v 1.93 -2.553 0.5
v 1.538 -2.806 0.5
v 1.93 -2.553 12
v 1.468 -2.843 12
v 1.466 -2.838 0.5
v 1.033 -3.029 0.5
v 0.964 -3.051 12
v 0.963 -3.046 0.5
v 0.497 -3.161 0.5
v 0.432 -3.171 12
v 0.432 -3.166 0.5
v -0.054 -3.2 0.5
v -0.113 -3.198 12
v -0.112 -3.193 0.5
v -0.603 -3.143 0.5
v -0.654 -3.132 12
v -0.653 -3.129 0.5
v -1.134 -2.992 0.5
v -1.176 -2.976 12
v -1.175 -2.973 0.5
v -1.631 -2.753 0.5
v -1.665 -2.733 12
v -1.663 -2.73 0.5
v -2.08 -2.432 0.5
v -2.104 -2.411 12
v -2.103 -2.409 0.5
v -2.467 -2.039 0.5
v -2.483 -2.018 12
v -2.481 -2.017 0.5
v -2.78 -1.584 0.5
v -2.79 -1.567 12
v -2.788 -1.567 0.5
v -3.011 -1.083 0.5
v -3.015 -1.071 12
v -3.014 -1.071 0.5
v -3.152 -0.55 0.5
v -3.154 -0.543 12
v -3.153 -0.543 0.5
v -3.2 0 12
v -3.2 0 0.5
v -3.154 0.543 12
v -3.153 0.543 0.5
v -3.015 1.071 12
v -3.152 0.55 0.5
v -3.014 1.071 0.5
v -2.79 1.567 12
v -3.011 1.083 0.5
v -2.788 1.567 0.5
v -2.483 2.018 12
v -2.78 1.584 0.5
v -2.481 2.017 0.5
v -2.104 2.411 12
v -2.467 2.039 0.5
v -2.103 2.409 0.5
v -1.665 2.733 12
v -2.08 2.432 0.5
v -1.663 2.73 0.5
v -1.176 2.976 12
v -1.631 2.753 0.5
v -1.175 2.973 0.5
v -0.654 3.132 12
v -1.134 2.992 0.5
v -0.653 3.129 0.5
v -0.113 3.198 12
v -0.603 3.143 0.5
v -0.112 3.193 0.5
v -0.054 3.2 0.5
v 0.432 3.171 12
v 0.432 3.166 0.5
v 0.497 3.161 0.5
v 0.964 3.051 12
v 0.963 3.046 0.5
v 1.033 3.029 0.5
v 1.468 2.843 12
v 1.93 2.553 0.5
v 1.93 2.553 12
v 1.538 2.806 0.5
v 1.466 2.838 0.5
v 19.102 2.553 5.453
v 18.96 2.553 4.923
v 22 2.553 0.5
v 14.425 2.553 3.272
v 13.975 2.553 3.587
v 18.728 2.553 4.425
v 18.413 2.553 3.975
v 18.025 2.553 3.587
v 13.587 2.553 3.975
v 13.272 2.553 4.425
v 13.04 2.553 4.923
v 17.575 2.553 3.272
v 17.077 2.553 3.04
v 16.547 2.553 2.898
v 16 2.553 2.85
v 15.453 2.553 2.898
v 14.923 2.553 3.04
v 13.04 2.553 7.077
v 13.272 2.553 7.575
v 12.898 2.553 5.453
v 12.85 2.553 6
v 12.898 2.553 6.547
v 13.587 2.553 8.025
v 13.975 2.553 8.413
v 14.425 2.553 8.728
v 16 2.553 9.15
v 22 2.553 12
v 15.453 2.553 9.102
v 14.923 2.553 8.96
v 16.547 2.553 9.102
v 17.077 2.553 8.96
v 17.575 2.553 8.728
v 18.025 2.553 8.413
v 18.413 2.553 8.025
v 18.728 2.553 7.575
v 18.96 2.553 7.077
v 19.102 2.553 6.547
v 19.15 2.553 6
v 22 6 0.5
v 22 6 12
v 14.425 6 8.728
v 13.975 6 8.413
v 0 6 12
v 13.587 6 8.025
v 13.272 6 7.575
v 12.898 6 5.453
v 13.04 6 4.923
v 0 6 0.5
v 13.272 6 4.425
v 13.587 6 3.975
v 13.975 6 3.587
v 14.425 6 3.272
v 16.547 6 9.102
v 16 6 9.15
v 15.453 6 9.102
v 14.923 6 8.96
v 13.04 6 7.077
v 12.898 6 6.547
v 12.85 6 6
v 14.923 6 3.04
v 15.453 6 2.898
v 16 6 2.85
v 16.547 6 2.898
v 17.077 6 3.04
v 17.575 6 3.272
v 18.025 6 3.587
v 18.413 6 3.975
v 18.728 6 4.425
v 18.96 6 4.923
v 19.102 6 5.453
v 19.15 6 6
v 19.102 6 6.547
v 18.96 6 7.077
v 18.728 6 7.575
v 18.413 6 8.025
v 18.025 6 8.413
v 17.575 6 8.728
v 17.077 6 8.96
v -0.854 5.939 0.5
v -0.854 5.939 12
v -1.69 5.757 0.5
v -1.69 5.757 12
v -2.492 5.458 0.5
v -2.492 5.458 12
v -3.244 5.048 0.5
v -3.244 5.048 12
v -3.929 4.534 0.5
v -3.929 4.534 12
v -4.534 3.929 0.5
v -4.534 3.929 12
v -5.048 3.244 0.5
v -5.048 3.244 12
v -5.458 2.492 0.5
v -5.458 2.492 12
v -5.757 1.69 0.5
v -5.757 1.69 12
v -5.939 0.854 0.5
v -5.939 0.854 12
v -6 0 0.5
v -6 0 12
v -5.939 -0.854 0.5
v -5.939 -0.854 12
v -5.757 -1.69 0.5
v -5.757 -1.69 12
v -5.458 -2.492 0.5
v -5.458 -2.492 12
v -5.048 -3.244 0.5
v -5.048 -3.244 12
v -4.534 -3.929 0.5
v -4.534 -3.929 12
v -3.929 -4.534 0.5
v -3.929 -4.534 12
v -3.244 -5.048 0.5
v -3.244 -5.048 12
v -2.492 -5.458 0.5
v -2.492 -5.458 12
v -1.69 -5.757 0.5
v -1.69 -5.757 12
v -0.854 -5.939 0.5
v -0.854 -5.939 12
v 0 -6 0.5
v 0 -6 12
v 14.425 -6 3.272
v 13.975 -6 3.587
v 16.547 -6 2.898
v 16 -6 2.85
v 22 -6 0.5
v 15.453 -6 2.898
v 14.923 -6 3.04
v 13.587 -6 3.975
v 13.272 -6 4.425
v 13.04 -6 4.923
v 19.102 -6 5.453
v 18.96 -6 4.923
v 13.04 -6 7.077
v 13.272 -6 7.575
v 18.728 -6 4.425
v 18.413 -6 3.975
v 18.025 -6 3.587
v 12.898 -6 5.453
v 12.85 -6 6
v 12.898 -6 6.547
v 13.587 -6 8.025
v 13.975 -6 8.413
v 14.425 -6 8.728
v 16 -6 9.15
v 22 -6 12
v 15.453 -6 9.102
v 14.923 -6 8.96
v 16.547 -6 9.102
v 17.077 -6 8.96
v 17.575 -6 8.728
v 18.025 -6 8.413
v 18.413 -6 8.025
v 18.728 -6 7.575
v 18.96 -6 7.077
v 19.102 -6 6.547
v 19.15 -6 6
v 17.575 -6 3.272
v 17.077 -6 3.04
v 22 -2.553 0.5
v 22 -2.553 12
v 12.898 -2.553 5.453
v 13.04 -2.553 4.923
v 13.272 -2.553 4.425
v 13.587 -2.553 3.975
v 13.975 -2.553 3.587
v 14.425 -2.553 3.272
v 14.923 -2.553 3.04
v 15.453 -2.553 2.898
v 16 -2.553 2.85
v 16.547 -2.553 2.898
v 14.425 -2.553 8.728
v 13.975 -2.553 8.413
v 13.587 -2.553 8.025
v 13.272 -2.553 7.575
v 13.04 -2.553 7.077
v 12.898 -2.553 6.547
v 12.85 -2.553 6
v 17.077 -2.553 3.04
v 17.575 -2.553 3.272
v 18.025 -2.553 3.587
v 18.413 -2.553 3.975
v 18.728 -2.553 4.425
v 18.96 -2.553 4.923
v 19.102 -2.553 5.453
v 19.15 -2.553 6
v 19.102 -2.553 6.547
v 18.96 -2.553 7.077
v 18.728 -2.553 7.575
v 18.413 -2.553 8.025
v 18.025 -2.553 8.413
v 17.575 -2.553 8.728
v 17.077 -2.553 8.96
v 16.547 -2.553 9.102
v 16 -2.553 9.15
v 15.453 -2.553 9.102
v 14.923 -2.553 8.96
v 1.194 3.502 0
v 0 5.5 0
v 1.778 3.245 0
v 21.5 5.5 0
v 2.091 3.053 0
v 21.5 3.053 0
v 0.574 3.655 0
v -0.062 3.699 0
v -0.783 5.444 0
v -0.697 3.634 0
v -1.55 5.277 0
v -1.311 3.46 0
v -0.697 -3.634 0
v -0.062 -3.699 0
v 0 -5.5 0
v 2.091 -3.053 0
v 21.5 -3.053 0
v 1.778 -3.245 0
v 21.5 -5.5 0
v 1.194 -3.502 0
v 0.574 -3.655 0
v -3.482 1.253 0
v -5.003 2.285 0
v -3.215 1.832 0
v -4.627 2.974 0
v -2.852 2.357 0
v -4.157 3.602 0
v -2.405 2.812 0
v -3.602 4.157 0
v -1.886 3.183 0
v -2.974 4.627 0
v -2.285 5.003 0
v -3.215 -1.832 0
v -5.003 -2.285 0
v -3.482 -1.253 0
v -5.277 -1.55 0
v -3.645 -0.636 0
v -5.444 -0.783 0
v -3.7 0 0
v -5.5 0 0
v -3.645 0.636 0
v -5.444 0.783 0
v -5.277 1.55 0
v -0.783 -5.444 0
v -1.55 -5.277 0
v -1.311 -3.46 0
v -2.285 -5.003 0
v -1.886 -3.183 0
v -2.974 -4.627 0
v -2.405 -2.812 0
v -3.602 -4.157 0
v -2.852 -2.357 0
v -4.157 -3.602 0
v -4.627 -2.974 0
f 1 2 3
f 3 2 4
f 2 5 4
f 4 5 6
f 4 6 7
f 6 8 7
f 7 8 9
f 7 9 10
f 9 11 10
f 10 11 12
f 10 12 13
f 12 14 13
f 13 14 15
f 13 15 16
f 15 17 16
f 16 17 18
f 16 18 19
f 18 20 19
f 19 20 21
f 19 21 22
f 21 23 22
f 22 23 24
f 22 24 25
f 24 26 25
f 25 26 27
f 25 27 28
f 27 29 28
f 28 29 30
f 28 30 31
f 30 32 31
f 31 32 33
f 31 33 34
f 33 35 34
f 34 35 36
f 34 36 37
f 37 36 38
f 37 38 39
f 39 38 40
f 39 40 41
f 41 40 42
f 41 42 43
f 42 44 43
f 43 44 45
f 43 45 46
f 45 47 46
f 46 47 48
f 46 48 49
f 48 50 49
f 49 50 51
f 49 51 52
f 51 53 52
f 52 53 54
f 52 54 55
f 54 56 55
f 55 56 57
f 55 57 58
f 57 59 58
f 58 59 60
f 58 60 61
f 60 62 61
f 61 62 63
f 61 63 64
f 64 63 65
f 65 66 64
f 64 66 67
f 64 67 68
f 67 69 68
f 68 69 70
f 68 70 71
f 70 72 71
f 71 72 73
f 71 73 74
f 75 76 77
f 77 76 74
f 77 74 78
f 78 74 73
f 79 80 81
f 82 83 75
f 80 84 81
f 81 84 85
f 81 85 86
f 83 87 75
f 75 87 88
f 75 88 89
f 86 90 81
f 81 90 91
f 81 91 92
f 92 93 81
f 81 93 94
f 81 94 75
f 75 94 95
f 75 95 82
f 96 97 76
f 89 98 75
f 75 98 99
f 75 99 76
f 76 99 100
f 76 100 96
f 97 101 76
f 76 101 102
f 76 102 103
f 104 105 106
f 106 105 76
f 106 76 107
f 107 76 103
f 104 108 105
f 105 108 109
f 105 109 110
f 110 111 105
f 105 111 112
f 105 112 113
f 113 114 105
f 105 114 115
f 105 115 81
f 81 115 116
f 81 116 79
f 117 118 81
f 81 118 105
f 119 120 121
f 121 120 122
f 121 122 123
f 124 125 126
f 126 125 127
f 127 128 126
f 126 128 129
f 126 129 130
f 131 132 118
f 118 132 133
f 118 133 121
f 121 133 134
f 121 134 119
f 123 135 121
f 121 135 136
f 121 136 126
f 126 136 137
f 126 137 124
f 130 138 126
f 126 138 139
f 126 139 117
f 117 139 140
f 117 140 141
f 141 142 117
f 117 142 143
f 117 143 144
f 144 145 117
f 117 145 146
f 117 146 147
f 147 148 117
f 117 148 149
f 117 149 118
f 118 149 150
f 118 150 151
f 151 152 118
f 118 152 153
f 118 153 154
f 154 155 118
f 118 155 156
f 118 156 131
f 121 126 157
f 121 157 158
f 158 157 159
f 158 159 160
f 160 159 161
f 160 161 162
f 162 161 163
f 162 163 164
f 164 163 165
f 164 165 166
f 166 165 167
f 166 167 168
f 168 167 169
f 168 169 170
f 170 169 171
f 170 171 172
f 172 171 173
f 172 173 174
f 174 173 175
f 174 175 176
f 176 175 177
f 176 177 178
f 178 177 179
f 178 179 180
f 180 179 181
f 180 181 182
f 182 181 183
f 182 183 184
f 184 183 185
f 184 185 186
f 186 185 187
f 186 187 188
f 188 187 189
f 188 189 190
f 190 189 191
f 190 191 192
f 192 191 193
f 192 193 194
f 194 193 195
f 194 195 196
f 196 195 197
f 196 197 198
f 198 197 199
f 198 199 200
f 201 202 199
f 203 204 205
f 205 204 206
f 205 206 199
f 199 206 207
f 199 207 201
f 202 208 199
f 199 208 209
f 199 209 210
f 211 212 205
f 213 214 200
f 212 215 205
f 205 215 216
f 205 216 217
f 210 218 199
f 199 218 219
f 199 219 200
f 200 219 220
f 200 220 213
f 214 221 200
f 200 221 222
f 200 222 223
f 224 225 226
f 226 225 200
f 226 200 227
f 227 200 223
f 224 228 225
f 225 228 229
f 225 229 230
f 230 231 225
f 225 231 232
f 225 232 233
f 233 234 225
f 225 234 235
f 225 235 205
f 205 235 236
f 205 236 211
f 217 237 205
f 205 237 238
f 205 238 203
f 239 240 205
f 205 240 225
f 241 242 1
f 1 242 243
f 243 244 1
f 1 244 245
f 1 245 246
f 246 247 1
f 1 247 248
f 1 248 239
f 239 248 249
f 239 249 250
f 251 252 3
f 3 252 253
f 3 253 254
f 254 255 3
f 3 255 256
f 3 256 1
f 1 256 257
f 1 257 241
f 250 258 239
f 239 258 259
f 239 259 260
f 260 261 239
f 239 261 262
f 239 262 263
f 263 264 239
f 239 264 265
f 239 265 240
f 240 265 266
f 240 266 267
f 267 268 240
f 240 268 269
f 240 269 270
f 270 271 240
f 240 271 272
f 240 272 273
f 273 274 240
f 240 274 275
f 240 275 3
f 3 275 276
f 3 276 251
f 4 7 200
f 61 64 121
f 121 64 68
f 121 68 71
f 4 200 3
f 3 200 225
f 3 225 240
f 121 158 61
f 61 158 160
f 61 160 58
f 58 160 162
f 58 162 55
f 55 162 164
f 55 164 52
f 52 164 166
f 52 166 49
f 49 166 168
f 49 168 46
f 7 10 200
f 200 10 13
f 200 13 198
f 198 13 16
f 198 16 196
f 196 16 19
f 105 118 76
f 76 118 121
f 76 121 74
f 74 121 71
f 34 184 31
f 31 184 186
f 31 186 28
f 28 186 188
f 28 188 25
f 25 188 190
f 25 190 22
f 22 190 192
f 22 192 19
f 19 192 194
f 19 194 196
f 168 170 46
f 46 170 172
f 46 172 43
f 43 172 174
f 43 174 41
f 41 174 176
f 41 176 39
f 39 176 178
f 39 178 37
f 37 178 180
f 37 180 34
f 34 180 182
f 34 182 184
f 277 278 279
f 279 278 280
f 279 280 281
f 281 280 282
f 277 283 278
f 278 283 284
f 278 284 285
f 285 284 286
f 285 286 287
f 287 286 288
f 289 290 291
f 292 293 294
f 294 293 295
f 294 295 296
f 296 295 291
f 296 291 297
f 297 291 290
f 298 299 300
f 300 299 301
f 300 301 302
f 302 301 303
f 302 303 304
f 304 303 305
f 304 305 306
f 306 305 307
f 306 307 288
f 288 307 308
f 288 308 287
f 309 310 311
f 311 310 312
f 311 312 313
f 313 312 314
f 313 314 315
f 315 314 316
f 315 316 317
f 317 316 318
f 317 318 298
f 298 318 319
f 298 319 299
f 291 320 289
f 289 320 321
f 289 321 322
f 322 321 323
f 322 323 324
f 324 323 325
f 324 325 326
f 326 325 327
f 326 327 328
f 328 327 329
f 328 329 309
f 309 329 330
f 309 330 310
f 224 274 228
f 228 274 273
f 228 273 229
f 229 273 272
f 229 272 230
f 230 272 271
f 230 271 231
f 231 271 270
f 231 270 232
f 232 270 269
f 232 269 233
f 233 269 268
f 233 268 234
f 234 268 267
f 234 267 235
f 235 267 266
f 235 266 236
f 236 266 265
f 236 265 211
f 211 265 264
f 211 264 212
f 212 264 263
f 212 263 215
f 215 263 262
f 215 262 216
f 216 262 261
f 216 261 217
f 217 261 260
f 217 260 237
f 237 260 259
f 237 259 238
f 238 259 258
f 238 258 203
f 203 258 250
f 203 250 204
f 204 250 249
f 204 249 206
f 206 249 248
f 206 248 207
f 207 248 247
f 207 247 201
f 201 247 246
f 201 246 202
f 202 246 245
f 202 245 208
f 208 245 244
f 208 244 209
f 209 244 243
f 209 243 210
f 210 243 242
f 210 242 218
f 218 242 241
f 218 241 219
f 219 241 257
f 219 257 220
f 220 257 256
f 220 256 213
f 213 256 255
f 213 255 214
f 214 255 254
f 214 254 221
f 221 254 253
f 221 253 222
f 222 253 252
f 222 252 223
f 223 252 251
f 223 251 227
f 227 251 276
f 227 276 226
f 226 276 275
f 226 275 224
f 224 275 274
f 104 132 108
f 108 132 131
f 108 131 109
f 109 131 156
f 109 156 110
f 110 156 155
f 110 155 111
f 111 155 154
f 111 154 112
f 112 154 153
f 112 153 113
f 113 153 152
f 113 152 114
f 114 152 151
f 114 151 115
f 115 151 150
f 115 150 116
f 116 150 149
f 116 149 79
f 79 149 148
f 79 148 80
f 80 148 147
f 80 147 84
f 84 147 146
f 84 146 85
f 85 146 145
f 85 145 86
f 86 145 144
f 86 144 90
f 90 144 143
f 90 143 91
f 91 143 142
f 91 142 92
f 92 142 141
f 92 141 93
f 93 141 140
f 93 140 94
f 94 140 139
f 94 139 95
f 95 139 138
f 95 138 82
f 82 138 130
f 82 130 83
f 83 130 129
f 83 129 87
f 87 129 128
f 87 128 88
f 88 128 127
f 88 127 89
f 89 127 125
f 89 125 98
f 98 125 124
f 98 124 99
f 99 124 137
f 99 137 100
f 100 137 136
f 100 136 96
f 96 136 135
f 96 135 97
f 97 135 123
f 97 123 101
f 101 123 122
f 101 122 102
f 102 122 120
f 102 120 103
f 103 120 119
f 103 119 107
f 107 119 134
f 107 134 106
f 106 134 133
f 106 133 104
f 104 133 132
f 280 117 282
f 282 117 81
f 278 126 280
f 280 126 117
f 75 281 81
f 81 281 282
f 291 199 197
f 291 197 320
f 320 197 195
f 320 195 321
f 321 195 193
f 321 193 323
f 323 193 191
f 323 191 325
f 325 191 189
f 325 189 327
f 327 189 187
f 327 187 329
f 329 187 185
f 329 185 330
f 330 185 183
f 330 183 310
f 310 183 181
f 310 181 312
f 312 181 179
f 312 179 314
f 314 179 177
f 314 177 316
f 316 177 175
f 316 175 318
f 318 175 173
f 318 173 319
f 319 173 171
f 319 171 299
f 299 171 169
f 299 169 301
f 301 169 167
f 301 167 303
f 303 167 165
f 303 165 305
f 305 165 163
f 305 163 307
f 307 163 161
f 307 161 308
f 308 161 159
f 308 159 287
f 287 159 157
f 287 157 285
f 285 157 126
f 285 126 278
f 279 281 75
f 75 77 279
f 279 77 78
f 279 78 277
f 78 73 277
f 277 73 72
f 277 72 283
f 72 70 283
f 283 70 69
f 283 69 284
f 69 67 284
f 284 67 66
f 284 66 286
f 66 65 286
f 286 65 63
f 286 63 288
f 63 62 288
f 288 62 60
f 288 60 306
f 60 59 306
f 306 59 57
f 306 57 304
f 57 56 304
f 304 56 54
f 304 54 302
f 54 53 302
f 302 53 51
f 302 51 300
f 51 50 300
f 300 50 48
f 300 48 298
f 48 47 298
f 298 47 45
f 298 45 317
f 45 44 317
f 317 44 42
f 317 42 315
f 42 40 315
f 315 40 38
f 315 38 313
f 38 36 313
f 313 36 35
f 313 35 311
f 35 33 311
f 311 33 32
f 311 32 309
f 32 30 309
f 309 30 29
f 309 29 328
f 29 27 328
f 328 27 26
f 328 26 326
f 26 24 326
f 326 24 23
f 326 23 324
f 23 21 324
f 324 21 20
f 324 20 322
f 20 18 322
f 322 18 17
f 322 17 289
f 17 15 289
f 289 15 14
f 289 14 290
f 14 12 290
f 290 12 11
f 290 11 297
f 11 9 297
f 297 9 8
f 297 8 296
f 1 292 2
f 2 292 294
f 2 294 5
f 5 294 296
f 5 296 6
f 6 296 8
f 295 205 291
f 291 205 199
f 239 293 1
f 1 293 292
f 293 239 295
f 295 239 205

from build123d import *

# Parameters (mm, degrees)
BOSS_EXTRUDE1_DEPTH     = 12
CUT_EXTRUDE1_DEPTH      = 26.768197453
CUT_EXTRUDE1_DEPTH_BACK = 26.768197453
SKETCH2_R               = 3.15
CHAMFER1_SIZE           = 0.5


with BuildPart() as part:
    # Sketch1 → Boss-Extrude1 (new body)
    with BuildSketch(Plane.XY):
        with BuildLine():
            Line((0, 6), (22, 6))
            Line((22, 6), (22, 2.552710574))
            Line((22, 2.552710574), (1.929680991, 2.552710574))
            ThreePointArc((1.929680991, 2.552710574), (-3.2, 0), (1.929680991, -2.552710574))
            Line((1.929680991, -2.552710574), (22, -2.552710574))
            Line((22, -2.552710574), (22, -6))
            Line((22, -6), (0, -6))
            ThreePointArc((0, -6), (-6, 0), (0, 6))
        make_face()
    extrude(amount=BOSS_EXTRUDE1_DEPTH)

    # Sketch2 → Cut-Extrude1 (cut, two sides: drawn at the far end of the back side and taken through both)
    with BuildSketch(Plane(origin=(0, 0, 0), x_dir=(1, 0, 0), z_dir=(0, 1, 0)).offset(-CUT_EXTRUDE1_DEPTH_BACK)):
        with Locations(Location((16, -6, 0), (0, 0, 270))):
            Circle(SKETCH2_R)
    extrude(amount=CUT_EXTRUDE1_DEPTH + CUT_EXTRUDE1_DEPTH_BACK, mode=Mode.SUBTRACT)

    # Chamfer1
    chamfer1_edges = [part.edges().sort_by_distance(p)[0] for p in [
        (11.964840496, 2.552710574, 0),
        (-3.2, 0, 0),
        (11.964840496, -2.552710574, 0),
        (22, -4.276355287, 0),
        (11, -6, 0),
        (-6, 0, 0),
        (11, 6, 0),
        (22, 4.276355287, 0),
    ]]
    chamfer(chamfer1_edges, length=CHAMFER1_SIZE)


solid = part.part
